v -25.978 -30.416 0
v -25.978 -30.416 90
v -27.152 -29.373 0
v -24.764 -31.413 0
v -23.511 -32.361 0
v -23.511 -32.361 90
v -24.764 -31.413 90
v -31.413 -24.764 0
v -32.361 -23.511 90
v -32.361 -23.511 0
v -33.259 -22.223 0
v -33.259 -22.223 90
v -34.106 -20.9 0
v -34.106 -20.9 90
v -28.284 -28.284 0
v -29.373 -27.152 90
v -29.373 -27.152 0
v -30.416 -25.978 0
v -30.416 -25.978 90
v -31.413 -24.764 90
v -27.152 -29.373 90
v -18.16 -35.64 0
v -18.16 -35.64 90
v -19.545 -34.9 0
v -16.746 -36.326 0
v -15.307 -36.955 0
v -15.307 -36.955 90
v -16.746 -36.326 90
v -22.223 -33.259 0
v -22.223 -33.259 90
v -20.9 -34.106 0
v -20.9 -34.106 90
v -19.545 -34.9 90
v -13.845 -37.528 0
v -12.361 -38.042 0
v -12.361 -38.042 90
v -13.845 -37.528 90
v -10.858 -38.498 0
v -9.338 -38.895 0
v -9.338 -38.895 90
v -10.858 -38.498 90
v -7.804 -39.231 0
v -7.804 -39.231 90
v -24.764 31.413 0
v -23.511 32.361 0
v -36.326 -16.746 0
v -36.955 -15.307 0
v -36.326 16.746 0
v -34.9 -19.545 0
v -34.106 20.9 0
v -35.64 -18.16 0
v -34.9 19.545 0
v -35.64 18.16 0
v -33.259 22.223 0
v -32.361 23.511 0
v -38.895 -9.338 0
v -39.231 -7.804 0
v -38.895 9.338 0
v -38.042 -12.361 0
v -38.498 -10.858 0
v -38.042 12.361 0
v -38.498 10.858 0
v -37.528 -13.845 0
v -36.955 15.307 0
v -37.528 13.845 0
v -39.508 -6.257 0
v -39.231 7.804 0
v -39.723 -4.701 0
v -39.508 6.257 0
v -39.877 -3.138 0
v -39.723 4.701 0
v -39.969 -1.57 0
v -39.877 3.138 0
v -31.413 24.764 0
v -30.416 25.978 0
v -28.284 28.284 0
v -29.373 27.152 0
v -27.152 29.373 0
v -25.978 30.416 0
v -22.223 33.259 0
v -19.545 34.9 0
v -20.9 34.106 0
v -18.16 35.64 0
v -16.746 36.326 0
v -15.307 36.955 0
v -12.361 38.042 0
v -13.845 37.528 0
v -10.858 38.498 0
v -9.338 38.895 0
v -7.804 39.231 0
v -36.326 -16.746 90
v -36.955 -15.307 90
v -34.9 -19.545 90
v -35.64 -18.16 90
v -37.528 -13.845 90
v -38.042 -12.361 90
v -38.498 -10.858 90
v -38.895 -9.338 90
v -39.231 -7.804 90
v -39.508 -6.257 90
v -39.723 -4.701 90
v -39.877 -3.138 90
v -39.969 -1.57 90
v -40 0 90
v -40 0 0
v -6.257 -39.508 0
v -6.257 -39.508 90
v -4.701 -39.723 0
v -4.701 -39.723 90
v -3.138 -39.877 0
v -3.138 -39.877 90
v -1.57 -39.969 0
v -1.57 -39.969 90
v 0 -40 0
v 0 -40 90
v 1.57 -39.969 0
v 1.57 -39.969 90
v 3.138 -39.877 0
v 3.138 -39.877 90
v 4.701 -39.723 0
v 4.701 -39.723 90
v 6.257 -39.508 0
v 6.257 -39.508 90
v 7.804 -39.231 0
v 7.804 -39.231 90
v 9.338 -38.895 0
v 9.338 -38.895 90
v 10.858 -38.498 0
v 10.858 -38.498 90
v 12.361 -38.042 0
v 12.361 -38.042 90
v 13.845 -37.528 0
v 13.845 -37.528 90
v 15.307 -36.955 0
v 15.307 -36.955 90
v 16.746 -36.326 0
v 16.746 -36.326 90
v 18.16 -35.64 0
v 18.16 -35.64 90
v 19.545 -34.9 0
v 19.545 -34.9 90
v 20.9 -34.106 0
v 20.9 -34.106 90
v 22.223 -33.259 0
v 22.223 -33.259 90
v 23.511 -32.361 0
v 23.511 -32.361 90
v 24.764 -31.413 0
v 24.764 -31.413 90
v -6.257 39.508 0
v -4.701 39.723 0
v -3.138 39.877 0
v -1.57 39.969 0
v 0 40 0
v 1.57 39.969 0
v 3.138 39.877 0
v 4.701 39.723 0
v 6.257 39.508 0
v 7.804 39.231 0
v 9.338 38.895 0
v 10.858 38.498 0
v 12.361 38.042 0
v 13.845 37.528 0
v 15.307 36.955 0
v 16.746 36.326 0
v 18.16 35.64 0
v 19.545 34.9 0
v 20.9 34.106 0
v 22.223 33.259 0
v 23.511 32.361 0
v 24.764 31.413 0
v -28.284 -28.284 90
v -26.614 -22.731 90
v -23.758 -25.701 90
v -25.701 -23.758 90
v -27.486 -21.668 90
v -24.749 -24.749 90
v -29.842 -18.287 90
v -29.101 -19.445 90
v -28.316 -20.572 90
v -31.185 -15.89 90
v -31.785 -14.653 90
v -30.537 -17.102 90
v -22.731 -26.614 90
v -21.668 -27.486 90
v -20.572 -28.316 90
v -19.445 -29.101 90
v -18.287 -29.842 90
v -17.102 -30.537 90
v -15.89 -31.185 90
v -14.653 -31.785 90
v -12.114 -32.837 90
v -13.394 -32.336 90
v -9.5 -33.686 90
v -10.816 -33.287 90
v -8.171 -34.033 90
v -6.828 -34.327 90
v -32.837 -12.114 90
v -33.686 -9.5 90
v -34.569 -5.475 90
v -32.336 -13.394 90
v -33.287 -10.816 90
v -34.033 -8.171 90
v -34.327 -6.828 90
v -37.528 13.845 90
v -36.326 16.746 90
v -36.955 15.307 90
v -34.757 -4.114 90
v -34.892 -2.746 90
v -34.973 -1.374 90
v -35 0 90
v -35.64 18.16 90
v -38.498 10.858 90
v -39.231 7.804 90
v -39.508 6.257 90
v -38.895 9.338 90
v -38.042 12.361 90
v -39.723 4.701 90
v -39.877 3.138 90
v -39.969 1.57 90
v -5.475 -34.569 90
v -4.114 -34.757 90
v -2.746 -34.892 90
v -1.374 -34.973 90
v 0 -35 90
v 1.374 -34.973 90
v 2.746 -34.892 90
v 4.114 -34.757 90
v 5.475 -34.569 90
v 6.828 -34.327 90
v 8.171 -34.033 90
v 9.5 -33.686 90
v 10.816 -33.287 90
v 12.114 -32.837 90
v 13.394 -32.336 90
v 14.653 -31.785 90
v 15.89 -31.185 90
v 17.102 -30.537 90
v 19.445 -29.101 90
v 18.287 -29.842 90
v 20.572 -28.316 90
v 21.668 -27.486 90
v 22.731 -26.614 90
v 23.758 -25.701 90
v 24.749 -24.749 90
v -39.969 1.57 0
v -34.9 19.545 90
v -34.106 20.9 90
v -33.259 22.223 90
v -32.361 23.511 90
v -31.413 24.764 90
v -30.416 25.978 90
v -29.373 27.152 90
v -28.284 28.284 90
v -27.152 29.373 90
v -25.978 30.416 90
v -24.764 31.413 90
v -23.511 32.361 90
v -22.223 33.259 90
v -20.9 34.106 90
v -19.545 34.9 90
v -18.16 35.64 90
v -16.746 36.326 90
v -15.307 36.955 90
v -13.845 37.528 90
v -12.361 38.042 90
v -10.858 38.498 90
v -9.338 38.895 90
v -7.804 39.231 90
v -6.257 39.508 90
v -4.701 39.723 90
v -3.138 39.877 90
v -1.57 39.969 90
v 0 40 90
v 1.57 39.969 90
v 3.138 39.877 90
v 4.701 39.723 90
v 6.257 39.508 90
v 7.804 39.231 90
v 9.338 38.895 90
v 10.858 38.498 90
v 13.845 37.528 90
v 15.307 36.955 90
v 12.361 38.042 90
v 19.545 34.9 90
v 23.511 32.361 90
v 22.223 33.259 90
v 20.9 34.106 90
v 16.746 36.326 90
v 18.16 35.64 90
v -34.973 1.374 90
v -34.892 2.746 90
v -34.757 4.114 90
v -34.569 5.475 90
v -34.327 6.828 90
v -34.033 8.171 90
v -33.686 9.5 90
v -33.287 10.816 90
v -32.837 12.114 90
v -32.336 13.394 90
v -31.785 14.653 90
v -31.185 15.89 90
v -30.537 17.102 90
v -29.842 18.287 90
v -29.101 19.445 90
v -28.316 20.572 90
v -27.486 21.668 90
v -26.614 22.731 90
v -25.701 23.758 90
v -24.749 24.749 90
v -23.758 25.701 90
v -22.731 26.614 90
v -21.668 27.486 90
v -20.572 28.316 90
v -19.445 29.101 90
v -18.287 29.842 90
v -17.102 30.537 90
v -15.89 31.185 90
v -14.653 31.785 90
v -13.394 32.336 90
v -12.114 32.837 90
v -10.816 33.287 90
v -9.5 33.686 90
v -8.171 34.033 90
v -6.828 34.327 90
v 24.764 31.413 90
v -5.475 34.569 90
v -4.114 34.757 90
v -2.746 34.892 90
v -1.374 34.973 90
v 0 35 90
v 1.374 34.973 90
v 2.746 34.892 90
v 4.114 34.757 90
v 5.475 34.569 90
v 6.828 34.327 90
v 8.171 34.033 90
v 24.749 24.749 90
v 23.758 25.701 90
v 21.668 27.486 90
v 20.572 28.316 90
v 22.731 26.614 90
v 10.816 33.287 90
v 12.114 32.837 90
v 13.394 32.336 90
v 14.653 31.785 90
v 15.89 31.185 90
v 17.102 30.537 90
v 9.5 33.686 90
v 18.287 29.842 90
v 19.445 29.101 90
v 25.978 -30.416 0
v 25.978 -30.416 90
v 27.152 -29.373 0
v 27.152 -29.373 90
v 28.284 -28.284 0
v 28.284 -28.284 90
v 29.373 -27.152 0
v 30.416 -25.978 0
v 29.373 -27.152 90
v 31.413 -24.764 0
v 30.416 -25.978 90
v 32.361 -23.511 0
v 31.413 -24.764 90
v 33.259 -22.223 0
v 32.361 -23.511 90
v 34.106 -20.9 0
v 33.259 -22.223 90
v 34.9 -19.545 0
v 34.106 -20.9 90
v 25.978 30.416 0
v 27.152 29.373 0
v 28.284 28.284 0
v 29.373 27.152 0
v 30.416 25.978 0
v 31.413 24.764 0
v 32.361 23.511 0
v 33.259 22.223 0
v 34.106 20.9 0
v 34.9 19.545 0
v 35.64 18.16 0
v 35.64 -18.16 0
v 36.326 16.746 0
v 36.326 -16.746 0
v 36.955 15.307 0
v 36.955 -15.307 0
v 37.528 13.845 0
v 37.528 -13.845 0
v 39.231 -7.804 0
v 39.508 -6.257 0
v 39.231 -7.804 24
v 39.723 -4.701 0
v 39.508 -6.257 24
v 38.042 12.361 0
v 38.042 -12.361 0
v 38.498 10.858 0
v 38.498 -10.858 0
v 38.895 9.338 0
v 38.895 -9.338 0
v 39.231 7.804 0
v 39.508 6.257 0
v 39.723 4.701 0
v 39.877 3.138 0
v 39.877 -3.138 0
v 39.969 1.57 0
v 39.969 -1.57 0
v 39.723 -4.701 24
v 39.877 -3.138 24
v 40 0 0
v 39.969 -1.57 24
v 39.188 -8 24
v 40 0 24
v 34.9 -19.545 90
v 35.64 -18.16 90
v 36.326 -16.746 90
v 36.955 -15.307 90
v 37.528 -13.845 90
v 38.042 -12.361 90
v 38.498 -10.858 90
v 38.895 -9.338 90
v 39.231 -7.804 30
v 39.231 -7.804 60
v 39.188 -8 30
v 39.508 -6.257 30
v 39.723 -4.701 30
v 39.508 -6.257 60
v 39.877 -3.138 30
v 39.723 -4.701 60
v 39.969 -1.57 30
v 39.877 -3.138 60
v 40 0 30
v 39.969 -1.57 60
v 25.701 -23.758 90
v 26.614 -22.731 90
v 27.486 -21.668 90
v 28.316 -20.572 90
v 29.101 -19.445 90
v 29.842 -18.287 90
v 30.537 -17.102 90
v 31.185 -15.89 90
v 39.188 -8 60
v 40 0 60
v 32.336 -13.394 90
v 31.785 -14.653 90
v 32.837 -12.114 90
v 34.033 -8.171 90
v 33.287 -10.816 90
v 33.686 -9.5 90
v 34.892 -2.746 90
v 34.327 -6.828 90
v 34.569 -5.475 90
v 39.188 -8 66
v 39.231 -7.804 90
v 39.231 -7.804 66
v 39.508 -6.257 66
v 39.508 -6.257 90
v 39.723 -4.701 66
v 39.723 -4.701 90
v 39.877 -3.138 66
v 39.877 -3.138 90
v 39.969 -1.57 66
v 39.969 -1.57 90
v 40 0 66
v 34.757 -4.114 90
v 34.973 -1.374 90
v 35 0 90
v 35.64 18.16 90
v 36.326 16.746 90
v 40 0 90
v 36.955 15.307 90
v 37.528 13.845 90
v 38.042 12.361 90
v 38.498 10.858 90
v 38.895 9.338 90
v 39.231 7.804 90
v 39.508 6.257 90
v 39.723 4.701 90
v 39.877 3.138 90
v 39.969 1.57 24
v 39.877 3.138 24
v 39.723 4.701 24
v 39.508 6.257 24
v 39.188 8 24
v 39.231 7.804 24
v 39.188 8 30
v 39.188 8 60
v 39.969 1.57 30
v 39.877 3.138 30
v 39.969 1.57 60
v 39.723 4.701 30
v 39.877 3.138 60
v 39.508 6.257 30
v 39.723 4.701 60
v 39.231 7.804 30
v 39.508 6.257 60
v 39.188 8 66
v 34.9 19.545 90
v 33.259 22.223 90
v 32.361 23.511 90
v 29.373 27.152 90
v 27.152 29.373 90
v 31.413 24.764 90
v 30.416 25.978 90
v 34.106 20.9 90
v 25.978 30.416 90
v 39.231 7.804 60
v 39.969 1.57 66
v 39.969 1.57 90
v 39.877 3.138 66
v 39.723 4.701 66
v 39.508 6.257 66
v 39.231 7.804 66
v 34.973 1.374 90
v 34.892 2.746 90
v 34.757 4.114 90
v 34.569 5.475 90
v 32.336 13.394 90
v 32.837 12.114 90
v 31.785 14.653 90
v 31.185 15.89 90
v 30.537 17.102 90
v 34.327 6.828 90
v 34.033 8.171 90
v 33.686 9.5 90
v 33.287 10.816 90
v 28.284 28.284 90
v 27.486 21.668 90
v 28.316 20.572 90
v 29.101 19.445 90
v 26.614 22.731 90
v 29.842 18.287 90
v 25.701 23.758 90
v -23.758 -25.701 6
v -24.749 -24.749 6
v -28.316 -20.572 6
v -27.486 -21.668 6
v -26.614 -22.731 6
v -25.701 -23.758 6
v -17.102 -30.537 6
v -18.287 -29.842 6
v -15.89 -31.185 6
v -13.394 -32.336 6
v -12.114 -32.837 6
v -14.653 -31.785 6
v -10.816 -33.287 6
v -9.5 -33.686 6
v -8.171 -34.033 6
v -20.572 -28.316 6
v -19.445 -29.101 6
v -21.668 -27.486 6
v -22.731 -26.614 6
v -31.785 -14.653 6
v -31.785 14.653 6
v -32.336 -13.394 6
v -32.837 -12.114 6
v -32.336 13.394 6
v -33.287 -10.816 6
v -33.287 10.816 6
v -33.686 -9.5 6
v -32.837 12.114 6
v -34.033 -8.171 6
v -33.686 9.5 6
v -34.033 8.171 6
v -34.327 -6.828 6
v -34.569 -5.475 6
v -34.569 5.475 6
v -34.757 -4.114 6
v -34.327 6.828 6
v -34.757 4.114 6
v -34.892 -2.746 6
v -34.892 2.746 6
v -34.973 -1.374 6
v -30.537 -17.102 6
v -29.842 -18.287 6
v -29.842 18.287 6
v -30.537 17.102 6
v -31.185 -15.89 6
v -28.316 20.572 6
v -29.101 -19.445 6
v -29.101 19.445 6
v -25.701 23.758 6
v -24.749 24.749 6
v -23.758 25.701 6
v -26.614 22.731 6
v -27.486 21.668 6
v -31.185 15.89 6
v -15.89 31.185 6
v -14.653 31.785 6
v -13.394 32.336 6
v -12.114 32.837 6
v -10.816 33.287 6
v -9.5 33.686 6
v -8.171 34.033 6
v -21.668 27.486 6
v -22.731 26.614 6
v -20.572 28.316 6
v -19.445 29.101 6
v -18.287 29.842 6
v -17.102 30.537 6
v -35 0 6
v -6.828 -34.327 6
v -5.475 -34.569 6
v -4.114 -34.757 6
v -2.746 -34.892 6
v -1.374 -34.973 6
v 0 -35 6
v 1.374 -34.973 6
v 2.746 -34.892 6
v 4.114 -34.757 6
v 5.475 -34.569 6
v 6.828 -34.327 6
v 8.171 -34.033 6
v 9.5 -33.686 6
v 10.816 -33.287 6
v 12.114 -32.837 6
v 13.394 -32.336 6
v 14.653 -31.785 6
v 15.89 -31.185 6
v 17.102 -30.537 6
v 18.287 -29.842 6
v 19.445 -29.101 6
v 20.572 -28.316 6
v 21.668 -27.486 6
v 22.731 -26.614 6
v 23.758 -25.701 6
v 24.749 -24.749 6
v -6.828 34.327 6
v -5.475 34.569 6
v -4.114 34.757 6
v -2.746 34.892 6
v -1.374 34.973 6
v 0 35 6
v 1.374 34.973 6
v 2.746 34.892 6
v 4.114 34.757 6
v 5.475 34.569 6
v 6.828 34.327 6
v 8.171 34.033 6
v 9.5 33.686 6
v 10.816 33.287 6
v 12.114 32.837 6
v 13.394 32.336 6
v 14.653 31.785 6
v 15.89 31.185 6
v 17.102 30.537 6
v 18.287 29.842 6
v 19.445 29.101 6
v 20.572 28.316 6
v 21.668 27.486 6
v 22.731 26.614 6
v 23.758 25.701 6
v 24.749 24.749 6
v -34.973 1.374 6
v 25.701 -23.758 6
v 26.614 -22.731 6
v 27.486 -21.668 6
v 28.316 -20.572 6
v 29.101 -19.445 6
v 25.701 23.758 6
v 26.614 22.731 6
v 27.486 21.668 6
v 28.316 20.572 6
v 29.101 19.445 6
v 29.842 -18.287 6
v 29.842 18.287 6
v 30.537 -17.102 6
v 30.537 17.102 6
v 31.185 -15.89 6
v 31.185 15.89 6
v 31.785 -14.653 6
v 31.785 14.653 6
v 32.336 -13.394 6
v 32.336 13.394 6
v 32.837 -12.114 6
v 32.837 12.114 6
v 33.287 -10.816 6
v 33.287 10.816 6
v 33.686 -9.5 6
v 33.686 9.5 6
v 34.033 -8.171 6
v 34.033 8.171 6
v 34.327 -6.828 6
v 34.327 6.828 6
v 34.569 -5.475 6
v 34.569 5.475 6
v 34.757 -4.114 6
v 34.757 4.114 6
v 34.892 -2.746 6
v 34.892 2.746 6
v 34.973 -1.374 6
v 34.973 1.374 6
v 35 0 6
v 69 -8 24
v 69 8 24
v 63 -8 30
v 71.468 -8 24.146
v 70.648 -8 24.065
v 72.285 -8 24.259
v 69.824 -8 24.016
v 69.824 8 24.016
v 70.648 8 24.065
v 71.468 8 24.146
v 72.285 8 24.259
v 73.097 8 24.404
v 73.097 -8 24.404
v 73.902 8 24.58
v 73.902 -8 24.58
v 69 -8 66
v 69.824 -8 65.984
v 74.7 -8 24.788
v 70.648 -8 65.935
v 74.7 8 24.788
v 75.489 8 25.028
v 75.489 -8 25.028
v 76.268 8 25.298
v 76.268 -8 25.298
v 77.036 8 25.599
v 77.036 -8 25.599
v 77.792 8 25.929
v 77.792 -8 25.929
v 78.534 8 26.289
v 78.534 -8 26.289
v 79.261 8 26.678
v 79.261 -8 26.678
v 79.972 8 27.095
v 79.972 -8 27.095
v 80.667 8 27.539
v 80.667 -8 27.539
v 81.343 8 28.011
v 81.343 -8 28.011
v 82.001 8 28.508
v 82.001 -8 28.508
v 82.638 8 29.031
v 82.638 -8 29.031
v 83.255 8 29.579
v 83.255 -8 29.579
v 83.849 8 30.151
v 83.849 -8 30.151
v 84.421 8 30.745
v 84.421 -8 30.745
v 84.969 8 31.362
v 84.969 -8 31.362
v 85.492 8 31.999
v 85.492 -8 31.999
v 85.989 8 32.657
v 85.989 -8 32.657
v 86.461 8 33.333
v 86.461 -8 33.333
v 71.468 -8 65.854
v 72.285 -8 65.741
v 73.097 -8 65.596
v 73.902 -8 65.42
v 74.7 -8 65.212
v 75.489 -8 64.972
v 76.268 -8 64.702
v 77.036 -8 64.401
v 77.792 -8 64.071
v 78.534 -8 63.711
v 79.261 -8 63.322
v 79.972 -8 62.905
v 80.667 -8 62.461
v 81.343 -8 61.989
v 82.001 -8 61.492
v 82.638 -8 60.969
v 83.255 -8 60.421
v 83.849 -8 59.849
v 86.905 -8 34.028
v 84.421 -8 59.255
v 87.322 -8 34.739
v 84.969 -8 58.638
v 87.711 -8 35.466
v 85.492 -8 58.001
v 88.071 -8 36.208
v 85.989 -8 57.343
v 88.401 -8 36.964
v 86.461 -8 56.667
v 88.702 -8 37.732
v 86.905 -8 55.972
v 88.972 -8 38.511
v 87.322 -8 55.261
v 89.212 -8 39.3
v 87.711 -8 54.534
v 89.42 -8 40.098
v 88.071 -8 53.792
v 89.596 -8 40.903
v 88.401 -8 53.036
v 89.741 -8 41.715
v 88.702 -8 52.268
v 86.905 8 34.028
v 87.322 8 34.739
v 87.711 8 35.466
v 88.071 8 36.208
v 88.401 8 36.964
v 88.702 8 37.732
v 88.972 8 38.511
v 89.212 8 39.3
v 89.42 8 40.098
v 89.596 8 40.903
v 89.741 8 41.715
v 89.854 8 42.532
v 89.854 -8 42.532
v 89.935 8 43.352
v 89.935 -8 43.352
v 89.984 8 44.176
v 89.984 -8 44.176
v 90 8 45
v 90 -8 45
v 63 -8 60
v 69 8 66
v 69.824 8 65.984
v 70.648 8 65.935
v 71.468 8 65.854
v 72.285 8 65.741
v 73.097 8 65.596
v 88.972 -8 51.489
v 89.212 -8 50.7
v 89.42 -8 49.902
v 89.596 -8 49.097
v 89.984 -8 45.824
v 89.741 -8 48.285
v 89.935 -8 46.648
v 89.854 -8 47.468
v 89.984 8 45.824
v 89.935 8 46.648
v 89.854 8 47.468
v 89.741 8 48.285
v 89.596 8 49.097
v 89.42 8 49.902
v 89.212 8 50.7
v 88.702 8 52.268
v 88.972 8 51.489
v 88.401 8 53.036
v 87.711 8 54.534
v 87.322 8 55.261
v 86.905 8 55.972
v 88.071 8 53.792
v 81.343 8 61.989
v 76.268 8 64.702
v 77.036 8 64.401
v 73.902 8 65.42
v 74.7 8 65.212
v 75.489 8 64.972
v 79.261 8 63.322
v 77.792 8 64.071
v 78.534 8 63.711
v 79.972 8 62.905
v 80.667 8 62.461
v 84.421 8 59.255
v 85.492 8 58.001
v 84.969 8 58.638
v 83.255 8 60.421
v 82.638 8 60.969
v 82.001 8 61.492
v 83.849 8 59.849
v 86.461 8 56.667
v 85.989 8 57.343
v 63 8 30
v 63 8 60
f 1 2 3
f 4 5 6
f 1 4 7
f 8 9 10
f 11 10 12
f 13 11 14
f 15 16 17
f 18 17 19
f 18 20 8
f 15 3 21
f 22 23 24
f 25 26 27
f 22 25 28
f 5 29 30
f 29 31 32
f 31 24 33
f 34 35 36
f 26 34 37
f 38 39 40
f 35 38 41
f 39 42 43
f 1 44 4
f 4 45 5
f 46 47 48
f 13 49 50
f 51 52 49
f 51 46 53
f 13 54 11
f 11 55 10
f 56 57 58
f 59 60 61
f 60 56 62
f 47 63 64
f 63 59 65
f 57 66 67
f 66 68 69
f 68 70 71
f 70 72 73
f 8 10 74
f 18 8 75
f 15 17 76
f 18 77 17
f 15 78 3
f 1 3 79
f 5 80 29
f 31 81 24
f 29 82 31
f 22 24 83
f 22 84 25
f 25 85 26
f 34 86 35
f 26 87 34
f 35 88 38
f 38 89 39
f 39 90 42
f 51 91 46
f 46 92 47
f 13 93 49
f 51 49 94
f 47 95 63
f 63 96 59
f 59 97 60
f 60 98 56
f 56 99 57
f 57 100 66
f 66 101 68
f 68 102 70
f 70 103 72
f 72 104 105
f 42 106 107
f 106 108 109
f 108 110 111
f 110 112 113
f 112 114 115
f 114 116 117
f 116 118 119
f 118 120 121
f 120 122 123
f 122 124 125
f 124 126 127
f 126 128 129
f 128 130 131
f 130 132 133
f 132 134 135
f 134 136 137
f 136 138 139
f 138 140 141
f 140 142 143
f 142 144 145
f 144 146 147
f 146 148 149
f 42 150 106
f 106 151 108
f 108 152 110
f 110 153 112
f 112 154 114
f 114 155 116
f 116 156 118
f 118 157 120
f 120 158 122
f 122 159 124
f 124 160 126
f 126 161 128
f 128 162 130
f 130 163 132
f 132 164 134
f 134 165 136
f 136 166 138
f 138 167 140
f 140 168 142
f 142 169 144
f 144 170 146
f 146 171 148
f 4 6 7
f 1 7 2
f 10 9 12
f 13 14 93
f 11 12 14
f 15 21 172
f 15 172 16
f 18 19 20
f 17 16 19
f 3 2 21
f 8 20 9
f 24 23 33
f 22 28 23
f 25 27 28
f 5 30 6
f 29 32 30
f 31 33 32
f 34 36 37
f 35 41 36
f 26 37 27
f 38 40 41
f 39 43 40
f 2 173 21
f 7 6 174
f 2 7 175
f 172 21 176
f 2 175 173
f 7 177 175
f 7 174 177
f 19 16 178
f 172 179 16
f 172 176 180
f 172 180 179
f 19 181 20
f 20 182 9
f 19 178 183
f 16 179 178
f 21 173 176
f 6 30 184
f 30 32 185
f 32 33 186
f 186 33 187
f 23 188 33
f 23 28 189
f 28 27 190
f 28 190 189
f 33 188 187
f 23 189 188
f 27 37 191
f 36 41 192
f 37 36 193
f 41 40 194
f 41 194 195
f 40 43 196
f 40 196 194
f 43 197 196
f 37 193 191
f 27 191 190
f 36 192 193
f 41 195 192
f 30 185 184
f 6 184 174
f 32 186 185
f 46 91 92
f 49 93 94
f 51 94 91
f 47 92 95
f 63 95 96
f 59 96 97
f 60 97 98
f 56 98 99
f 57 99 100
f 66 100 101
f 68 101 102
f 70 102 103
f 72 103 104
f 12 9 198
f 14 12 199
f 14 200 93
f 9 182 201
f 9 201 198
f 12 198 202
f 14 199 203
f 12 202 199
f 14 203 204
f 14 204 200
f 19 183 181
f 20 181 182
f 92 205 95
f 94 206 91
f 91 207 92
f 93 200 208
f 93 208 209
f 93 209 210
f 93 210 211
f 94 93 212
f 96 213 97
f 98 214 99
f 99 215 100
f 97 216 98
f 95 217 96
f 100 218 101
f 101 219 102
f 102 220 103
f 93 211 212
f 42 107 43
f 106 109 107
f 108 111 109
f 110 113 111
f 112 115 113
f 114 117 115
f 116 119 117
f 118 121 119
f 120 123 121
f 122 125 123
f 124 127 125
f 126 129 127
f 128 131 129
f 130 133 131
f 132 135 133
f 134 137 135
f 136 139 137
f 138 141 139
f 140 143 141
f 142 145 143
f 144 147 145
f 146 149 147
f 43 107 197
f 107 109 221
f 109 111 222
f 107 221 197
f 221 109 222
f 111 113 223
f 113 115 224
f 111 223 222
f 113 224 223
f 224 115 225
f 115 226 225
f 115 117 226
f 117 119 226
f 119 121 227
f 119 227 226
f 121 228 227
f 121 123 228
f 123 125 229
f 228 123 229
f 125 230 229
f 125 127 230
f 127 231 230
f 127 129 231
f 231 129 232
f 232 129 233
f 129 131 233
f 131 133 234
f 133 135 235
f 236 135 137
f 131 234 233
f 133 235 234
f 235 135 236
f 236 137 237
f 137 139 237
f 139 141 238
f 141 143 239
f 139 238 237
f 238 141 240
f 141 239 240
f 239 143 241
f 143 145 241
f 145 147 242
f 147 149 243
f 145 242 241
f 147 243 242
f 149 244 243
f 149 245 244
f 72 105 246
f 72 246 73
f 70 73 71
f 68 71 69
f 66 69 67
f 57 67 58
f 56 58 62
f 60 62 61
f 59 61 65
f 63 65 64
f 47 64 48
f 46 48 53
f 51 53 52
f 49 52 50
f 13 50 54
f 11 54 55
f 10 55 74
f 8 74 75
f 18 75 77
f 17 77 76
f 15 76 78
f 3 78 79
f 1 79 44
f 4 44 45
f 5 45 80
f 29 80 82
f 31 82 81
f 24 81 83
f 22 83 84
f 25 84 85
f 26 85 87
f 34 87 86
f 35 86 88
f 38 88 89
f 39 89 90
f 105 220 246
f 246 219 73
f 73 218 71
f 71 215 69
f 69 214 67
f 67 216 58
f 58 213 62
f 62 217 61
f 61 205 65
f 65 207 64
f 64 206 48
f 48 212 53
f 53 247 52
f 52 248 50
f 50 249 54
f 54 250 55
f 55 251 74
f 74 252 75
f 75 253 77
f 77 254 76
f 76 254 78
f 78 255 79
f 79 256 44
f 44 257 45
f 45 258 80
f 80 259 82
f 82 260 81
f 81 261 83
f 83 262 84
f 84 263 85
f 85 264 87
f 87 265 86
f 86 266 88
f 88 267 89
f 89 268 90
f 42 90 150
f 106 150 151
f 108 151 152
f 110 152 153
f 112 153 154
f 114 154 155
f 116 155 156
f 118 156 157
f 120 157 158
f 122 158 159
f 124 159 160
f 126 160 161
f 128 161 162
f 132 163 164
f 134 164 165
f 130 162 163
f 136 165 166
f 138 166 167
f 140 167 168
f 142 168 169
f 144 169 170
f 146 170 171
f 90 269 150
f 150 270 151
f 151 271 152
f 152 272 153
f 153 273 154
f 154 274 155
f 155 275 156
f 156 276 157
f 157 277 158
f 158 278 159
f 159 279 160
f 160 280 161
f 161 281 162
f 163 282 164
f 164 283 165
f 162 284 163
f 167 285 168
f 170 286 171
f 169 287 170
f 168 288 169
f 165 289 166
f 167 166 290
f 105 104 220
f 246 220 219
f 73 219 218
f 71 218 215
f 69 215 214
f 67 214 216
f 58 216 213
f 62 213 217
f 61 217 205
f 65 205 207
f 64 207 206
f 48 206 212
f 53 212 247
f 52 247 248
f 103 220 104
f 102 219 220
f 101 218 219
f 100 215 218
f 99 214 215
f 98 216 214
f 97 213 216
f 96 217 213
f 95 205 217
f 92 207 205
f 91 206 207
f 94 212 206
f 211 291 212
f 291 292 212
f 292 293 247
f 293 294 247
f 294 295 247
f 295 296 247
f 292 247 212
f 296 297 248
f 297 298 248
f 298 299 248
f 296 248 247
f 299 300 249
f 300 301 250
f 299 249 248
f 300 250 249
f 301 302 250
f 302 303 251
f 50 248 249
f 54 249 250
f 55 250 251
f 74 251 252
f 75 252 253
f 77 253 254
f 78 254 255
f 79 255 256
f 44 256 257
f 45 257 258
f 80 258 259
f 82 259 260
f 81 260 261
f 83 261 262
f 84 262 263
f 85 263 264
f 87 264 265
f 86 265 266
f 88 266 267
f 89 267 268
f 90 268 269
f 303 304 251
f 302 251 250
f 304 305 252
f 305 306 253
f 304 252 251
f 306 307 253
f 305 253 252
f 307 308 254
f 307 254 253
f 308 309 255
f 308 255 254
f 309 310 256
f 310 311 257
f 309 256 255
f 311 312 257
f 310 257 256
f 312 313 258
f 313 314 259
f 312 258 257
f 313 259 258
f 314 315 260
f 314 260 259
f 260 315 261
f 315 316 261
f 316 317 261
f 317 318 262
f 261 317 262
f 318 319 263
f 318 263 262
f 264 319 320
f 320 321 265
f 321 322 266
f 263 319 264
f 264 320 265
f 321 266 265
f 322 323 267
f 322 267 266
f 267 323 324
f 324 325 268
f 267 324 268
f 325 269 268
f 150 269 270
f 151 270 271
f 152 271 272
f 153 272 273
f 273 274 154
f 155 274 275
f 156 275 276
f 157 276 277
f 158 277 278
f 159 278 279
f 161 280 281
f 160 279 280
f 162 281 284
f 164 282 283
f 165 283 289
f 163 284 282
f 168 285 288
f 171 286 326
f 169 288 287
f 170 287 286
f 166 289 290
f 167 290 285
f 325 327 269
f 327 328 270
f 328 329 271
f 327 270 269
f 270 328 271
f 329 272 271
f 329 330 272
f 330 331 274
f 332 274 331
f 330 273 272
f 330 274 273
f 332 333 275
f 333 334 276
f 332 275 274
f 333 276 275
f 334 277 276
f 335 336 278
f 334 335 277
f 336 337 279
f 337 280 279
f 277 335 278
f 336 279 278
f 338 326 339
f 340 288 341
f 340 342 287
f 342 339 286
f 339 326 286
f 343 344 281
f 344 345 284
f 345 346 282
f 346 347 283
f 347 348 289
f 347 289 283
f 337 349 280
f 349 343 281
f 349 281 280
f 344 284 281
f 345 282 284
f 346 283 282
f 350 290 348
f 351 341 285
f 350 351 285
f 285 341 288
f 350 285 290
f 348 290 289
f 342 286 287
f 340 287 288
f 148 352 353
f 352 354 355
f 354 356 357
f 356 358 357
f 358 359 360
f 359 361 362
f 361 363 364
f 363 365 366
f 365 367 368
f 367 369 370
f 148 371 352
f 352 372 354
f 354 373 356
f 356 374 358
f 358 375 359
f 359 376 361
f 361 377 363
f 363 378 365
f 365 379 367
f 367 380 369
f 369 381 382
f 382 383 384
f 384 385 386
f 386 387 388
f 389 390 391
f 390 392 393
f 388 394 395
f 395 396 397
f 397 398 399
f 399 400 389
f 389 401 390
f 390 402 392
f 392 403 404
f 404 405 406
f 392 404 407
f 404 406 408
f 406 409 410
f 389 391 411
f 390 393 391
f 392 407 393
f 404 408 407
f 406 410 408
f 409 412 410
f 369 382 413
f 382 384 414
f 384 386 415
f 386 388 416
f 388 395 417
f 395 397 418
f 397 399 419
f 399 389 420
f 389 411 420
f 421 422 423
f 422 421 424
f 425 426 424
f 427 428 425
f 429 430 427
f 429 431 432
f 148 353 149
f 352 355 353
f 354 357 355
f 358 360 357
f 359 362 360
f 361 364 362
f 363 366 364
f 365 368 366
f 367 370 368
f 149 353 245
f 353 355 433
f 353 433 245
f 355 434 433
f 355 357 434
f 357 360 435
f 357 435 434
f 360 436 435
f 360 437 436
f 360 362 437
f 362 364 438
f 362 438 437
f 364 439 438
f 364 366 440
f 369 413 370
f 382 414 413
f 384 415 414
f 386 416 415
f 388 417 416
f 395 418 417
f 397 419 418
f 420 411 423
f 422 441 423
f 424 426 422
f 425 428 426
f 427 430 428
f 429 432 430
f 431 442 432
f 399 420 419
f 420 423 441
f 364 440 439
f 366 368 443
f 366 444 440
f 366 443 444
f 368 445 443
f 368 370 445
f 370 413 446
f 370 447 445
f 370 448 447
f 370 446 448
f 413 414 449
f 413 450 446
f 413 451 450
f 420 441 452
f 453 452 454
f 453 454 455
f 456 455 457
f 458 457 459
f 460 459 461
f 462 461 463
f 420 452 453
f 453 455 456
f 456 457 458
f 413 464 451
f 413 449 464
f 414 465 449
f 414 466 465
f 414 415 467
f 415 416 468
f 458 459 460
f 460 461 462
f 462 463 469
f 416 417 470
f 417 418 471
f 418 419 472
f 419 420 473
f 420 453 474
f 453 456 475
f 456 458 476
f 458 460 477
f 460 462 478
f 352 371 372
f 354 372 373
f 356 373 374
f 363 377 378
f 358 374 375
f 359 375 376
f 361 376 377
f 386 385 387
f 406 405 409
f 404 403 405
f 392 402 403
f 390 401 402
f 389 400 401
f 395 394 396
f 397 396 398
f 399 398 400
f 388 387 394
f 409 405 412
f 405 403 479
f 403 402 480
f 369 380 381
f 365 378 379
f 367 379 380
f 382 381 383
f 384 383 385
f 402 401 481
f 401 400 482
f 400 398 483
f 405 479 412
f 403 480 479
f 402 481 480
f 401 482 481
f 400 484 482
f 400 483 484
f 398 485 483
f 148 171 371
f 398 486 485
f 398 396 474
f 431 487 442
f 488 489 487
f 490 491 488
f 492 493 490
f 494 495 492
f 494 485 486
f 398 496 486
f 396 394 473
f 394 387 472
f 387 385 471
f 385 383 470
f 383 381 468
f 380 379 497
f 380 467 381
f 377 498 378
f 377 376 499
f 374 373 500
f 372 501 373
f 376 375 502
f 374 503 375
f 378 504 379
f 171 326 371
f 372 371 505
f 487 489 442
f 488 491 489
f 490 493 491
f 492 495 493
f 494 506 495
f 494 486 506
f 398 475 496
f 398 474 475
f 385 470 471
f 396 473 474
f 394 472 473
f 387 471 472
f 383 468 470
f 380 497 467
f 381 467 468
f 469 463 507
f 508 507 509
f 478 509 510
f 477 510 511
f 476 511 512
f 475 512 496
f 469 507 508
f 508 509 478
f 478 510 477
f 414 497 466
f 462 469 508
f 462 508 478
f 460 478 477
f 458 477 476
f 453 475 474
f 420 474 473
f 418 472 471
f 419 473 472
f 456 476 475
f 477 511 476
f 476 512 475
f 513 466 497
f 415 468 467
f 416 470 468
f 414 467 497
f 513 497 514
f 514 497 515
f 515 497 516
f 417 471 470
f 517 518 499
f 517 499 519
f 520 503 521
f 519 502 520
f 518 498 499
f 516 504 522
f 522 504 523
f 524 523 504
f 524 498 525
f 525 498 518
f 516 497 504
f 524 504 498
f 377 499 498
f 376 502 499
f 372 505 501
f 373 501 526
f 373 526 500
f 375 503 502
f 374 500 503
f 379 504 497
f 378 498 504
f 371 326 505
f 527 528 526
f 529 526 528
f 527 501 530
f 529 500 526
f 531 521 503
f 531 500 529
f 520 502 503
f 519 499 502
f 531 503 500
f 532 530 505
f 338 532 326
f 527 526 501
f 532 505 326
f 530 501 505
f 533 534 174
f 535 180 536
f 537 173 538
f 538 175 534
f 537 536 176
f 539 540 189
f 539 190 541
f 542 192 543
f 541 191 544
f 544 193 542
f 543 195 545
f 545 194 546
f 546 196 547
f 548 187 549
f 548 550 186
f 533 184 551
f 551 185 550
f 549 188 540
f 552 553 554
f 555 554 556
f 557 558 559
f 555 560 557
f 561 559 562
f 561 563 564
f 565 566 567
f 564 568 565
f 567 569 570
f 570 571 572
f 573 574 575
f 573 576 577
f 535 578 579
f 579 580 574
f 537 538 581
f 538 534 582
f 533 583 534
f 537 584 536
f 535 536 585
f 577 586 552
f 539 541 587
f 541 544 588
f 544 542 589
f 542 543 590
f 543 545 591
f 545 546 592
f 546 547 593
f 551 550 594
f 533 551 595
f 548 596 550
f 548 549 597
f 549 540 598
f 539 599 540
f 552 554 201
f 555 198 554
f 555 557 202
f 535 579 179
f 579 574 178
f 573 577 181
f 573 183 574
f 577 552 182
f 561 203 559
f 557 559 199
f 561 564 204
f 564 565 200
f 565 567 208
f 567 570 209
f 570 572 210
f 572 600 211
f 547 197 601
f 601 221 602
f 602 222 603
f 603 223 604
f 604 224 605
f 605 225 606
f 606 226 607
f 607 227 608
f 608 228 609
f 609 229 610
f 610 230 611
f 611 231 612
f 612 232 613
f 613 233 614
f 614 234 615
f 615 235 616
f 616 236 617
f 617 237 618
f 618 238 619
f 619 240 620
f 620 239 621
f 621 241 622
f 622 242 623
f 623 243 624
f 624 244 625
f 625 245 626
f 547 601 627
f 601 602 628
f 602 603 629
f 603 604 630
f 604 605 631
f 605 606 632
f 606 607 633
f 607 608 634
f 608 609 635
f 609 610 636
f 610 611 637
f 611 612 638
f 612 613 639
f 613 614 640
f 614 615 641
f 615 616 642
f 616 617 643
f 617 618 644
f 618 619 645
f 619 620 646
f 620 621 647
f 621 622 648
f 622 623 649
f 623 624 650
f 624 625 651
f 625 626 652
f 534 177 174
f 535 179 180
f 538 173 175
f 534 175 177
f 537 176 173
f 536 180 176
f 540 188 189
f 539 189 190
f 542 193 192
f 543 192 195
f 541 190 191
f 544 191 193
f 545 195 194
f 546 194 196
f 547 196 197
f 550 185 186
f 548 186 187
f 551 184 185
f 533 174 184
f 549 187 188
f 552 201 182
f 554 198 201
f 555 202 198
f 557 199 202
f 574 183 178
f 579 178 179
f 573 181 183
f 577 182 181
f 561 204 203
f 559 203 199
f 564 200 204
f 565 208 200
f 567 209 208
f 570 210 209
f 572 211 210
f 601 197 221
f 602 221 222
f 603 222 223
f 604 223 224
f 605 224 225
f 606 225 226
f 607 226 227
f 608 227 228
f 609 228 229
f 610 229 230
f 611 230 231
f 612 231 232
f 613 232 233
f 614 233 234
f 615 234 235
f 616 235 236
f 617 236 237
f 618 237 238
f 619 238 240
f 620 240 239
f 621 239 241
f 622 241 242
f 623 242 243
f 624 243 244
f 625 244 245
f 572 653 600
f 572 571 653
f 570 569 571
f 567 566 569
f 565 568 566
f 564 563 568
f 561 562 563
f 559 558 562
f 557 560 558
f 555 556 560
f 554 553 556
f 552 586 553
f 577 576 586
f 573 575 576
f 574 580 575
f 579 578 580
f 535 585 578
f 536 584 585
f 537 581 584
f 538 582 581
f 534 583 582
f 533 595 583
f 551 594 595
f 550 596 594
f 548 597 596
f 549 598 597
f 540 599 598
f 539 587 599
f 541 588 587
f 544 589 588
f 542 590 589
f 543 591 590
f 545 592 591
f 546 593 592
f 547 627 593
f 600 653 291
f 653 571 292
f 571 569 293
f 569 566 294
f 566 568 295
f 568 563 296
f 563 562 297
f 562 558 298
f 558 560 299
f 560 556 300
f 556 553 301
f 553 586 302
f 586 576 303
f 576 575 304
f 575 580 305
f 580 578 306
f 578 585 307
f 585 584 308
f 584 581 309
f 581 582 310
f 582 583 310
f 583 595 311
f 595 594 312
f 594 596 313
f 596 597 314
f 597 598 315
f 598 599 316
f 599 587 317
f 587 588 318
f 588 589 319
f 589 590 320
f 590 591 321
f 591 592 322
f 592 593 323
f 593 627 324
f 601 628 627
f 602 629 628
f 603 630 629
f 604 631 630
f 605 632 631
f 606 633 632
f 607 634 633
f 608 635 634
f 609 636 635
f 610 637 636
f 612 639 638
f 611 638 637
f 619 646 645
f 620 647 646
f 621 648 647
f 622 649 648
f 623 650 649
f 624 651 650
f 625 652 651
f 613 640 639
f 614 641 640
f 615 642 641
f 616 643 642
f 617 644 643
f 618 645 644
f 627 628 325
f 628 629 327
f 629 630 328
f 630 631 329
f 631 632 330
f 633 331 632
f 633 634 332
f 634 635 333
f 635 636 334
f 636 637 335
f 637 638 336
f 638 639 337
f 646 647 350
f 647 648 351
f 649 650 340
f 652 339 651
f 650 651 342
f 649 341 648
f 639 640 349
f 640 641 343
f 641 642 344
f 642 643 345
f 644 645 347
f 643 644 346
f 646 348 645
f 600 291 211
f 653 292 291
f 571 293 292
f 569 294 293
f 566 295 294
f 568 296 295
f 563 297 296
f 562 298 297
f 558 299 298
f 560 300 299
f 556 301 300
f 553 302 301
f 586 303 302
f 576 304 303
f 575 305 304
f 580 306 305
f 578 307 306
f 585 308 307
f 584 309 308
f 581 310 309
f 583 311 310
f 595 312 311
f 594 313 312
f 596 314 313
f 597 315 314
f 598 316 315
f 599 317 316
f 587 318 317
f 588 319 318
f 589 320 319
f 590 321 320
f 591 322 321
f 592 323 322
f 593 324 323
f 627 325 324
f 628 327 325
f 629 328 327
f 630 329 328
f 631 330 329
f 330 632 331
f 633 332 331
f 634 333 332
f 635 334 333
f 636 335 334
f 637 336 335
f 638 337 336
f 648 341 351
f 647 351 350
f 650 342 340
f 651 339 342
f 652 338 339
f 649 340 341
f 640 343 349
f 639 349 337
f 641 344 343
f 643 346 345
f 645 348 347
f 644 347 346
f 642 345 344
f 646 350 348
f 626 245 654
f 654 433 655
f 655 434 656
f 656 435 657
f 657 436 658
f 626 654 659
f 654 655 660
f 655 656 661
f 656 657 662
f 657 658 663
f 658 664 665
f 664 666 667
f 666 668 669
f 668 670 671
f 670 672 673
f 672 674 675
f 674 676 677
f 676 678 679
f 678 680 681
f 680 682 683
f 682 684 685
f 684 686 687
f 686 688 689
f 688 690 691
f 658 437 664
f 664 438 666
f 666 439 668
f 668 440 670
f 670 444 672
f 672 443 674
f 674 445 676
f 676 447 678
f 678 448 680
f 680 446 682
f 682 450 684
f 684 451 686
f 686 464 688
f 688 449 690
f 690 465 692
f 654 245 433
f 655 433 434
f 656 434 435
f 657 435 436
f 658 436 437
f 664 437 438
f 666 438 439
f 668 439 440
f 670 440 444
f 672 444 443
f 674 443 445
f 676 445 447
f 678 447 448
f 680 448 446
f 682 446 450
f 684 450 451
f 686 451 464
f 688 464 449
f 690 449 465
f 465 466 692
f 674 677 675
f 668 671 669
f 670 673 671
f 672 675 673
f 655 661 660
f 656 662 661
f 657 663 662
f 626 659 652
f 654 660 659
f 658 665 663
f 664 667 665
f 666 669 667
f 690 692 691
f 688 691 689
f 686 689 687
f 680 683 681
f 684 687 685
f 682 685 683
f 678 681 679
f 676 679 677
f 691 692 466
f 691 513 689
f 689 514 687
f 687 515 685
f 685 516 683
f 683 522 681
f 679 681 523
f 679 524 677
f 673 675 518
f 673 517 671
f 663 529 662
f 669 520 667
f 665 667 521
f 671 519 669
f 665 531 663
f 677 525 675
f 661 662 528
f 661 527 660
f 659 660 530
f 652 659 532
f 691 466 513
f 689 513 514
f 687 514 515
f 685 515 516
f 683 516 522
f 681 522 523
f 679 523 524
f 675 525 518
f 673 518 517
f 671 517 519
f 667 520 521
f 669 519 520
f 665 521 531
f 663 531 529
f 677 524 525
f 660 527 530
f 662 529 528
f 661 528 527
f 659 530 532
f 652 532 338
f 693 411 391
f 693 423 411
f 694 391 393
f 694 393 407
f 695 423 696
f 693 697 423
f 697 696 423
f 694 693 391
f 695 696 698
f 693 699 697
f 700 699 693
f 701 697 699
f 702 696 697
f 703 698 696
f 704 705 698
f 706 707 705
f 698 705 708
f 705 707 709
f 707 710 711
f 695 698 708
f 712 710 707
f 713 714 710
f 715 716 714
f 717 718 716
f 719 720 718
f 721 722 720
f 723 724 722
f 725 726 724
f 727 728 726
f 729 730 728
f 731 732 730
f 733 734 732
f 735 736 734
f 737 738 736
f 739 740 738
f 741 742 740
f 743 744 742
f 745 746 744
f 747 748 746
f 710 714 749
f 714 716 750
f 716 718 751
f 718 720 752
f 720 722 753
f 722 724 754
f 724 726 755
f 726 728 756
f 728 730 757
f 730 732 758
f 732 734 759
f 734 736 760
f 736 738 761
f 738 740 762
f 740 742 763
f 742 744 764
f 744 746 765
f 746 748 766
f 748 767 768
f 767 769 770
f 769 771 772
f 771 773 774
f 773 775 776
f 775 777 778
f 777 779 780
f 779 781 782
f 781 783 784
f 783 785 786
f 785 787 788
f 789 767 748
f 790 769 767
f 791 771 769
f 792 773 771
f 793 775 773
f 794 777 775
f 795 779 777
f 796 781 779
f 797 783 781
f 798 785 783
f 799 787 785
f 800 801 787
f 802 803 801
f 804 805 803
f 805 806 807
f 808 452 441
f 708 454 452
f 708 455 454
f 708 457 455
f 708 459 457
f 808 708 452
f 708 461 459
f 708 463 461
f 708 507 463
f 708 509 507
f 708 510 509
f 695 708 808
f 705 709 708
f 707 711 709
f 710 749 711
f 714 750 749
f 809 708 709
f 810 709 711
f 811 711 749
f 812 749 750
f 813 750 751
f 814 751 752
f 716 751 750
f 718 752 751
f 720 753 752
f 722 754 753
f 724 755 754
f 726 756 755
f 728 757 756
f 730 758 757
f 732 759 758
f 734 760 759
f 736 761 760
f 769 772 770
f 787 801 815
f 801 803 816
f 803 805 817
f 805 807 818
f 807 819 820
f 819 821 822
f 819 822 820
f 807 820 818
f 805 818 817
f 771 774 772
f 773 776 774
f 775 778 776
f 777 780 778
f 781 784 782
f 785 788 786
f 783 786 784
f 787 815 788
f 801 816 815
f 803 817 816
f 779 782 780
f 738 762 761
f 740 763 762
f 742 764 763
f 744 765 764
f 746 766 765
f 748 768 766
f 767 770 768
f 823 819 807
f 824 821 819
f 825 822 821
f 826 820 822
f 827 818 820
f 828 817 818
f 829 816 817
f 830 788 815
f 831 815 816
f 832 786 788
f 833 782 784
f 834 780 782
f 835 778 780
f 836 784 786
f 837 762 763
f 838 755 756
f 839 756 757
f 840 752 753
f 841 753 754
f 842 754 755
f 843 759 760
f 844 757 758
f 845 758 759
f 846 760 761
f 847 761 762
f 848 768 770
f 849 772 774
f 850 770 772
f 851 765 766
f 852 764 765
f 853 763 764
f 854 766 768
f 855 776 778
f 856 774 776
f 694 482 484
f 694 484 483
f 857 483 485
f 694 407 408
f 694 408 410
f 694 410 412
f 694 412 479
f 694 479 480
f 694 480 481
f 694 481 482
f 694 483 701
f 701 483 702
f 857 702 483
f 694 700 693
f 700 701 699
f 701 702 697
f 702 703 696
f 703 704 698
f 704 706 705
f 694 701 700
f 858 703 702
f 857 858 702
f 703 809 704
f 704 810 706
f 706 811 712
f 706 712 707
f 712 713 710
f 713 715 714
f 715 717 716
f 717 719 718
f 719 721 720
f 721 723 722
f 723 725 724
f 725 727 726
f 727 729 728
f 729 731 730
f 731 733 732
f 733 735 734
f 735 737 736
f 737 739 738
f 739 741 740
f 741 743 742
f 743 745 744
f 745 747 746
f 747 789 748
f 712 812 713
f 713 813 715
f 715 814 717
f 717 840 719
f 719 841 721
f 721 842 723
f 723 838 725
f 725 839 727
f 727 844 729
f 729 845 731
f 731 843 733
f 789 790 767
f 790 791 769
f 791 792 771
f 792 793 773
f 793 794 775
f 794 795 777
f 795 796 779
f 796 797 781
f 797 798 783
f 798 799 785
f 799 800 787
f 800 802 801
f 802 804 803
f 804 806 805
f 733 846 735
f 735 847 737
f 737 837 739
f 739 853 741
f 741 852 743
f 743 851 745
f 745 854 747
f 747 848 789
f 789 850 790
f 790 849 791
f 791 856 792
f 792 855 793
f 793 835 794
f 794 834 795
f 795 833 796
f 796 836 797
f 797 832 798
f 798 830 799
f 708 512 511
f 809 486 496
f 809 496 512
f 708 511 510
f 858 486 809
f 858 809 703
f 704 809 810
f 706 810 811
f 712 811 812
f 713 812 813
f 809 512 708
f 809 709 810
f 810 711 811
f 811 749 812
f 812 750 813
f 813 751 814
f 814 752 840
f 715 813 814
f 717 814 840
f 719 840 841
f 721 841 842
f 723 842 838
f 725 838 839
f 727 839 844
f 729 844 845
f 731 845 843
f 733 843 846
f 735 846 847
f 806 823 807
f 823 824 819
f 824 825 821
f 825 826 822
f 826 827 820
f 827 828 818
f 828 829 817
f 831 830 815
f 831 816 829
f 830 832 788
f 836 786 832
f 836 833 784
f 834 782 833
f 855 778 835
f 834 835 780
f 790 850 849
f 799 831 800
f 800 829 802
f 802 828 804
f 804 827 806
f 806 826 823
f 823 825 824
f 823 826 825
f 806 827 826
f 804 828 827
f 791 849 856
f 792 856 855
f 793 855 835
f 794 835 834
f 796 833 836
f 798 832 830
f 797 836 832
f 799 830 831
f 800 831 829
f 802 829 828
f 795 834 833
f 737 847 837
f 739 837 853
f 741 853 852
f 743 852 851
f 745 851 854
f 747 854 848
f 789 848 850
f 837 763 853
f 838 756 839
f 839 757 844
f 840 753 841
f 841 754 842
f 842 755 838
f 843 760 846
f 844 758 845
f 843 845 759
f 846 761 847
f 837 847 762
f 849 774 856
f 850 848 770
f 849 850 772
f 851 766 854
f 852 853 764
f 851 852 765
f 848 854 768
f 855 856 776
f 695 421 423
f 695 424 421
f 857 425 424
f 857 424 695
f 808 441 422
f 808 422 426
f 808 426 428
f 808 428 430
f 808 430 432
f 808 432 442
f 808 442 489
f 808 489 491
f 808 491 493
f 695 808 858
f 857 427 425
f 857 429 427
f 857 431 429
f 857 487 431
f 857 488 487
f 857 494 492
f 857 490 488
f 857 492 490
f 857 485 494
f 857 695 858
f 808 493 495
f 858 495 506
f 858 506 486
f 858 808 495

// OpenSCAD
$fn = 160;

outer_radius = 40;
inner_radius = 35;
mug_height = 90;
bottom_thickness = 6;

inner_gap_width = 25;
inner_gap_height = 30;
handle_wall_thickness = 6;
handle_depth = 16;

handle_height = inner_gap_height + 2 * handle_wall_thickness;

module mug_body() {
    difference() {
        cylinder(r = outer_radius, h = mug_height, center = false);
        translate([0, 0, bottom_thickness])
            cylinder(r = inner_radius, h = mug_height - bottom_thickness, center = false);
    }
}

module handle_cross_section() {
    intersection() {
        union() {
            translate([0, -handle_height / 2])
                square([inner_gap_width + handle_wall_thickness, handle_height], center = false);
            translate([inner_gap_width + handle_wall_thickness, 0])
                circle(r = handle_height / 2);
        }
        translate([0, -handle_height / 2])
            square(
                [inner_gap_width + handle_wall_thickness + handle_height / 2, handle_height],
                center = false
            );
    }
}

module handle_shape() {
    difference() {
        linear_extrude(height = handle_depth, center = true)
            handle_cross_section();
        translate([inner_gap_width / 2, 0, 0])
            cube([inner_gap_width, inner_gap_height, handle_depth + 4], center = true);
    }
}

module handle_body() {
    translate([outer_radius - 2, 0, mug_height / 2])
        rotate([90, 0, 0])
            handle_shape();
}

union() {
    mug_body();
    handle_body();
}
